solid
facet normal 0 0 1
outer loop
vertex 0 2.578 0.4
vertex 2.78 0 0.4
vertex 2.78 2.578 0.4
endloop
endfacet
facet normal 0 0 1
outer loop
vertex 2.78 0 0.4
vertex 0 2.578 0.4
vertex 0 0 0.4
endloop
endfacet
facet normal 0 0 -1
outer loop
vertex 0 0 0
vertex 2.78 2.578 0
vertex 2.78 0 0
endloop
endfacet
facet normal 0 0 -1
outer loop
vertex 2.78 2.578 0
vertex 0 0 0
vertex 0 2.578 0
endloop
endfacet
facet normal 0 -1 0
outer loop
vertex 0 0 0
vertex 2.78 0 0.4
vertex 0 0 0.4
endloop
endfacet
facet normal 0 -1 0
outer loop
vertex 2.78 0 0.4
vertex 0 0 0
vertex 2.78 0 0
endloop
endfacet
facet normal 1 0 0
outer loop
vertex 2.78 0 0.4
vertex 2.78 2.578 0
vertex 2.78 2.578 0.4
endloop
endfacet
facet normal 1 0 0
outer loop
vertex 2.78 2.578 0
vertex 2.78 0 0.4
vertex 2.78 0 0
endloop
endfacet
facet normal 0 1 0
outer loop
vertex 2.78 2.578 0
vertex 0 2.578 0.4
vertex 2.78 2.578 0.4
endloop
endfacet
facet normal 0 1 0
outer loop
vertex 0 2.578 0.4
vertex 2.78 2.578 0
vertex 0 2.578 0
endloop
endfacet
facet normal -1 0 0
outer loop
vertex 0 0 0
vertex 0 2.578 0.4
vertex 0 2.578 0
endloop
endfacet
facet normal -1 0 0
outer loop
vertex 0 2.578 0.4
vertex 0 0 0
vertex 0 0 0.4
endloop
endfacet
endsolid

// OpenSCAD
/* Warning, this is a very basic generator with a lot of approximation 
input data : [WLCSP, GFB, 2.78x2.578x0.4mm, 35, , A, C04-21492A]
generated by com.zoubworld.electronics.cad.model3d.Basic
Date : Sun Feb 15 10:50:49 CET 2026
*/

//body
color("black")
translate([0,0,0])
cube([2.78,2.578,0.4], center=false);
